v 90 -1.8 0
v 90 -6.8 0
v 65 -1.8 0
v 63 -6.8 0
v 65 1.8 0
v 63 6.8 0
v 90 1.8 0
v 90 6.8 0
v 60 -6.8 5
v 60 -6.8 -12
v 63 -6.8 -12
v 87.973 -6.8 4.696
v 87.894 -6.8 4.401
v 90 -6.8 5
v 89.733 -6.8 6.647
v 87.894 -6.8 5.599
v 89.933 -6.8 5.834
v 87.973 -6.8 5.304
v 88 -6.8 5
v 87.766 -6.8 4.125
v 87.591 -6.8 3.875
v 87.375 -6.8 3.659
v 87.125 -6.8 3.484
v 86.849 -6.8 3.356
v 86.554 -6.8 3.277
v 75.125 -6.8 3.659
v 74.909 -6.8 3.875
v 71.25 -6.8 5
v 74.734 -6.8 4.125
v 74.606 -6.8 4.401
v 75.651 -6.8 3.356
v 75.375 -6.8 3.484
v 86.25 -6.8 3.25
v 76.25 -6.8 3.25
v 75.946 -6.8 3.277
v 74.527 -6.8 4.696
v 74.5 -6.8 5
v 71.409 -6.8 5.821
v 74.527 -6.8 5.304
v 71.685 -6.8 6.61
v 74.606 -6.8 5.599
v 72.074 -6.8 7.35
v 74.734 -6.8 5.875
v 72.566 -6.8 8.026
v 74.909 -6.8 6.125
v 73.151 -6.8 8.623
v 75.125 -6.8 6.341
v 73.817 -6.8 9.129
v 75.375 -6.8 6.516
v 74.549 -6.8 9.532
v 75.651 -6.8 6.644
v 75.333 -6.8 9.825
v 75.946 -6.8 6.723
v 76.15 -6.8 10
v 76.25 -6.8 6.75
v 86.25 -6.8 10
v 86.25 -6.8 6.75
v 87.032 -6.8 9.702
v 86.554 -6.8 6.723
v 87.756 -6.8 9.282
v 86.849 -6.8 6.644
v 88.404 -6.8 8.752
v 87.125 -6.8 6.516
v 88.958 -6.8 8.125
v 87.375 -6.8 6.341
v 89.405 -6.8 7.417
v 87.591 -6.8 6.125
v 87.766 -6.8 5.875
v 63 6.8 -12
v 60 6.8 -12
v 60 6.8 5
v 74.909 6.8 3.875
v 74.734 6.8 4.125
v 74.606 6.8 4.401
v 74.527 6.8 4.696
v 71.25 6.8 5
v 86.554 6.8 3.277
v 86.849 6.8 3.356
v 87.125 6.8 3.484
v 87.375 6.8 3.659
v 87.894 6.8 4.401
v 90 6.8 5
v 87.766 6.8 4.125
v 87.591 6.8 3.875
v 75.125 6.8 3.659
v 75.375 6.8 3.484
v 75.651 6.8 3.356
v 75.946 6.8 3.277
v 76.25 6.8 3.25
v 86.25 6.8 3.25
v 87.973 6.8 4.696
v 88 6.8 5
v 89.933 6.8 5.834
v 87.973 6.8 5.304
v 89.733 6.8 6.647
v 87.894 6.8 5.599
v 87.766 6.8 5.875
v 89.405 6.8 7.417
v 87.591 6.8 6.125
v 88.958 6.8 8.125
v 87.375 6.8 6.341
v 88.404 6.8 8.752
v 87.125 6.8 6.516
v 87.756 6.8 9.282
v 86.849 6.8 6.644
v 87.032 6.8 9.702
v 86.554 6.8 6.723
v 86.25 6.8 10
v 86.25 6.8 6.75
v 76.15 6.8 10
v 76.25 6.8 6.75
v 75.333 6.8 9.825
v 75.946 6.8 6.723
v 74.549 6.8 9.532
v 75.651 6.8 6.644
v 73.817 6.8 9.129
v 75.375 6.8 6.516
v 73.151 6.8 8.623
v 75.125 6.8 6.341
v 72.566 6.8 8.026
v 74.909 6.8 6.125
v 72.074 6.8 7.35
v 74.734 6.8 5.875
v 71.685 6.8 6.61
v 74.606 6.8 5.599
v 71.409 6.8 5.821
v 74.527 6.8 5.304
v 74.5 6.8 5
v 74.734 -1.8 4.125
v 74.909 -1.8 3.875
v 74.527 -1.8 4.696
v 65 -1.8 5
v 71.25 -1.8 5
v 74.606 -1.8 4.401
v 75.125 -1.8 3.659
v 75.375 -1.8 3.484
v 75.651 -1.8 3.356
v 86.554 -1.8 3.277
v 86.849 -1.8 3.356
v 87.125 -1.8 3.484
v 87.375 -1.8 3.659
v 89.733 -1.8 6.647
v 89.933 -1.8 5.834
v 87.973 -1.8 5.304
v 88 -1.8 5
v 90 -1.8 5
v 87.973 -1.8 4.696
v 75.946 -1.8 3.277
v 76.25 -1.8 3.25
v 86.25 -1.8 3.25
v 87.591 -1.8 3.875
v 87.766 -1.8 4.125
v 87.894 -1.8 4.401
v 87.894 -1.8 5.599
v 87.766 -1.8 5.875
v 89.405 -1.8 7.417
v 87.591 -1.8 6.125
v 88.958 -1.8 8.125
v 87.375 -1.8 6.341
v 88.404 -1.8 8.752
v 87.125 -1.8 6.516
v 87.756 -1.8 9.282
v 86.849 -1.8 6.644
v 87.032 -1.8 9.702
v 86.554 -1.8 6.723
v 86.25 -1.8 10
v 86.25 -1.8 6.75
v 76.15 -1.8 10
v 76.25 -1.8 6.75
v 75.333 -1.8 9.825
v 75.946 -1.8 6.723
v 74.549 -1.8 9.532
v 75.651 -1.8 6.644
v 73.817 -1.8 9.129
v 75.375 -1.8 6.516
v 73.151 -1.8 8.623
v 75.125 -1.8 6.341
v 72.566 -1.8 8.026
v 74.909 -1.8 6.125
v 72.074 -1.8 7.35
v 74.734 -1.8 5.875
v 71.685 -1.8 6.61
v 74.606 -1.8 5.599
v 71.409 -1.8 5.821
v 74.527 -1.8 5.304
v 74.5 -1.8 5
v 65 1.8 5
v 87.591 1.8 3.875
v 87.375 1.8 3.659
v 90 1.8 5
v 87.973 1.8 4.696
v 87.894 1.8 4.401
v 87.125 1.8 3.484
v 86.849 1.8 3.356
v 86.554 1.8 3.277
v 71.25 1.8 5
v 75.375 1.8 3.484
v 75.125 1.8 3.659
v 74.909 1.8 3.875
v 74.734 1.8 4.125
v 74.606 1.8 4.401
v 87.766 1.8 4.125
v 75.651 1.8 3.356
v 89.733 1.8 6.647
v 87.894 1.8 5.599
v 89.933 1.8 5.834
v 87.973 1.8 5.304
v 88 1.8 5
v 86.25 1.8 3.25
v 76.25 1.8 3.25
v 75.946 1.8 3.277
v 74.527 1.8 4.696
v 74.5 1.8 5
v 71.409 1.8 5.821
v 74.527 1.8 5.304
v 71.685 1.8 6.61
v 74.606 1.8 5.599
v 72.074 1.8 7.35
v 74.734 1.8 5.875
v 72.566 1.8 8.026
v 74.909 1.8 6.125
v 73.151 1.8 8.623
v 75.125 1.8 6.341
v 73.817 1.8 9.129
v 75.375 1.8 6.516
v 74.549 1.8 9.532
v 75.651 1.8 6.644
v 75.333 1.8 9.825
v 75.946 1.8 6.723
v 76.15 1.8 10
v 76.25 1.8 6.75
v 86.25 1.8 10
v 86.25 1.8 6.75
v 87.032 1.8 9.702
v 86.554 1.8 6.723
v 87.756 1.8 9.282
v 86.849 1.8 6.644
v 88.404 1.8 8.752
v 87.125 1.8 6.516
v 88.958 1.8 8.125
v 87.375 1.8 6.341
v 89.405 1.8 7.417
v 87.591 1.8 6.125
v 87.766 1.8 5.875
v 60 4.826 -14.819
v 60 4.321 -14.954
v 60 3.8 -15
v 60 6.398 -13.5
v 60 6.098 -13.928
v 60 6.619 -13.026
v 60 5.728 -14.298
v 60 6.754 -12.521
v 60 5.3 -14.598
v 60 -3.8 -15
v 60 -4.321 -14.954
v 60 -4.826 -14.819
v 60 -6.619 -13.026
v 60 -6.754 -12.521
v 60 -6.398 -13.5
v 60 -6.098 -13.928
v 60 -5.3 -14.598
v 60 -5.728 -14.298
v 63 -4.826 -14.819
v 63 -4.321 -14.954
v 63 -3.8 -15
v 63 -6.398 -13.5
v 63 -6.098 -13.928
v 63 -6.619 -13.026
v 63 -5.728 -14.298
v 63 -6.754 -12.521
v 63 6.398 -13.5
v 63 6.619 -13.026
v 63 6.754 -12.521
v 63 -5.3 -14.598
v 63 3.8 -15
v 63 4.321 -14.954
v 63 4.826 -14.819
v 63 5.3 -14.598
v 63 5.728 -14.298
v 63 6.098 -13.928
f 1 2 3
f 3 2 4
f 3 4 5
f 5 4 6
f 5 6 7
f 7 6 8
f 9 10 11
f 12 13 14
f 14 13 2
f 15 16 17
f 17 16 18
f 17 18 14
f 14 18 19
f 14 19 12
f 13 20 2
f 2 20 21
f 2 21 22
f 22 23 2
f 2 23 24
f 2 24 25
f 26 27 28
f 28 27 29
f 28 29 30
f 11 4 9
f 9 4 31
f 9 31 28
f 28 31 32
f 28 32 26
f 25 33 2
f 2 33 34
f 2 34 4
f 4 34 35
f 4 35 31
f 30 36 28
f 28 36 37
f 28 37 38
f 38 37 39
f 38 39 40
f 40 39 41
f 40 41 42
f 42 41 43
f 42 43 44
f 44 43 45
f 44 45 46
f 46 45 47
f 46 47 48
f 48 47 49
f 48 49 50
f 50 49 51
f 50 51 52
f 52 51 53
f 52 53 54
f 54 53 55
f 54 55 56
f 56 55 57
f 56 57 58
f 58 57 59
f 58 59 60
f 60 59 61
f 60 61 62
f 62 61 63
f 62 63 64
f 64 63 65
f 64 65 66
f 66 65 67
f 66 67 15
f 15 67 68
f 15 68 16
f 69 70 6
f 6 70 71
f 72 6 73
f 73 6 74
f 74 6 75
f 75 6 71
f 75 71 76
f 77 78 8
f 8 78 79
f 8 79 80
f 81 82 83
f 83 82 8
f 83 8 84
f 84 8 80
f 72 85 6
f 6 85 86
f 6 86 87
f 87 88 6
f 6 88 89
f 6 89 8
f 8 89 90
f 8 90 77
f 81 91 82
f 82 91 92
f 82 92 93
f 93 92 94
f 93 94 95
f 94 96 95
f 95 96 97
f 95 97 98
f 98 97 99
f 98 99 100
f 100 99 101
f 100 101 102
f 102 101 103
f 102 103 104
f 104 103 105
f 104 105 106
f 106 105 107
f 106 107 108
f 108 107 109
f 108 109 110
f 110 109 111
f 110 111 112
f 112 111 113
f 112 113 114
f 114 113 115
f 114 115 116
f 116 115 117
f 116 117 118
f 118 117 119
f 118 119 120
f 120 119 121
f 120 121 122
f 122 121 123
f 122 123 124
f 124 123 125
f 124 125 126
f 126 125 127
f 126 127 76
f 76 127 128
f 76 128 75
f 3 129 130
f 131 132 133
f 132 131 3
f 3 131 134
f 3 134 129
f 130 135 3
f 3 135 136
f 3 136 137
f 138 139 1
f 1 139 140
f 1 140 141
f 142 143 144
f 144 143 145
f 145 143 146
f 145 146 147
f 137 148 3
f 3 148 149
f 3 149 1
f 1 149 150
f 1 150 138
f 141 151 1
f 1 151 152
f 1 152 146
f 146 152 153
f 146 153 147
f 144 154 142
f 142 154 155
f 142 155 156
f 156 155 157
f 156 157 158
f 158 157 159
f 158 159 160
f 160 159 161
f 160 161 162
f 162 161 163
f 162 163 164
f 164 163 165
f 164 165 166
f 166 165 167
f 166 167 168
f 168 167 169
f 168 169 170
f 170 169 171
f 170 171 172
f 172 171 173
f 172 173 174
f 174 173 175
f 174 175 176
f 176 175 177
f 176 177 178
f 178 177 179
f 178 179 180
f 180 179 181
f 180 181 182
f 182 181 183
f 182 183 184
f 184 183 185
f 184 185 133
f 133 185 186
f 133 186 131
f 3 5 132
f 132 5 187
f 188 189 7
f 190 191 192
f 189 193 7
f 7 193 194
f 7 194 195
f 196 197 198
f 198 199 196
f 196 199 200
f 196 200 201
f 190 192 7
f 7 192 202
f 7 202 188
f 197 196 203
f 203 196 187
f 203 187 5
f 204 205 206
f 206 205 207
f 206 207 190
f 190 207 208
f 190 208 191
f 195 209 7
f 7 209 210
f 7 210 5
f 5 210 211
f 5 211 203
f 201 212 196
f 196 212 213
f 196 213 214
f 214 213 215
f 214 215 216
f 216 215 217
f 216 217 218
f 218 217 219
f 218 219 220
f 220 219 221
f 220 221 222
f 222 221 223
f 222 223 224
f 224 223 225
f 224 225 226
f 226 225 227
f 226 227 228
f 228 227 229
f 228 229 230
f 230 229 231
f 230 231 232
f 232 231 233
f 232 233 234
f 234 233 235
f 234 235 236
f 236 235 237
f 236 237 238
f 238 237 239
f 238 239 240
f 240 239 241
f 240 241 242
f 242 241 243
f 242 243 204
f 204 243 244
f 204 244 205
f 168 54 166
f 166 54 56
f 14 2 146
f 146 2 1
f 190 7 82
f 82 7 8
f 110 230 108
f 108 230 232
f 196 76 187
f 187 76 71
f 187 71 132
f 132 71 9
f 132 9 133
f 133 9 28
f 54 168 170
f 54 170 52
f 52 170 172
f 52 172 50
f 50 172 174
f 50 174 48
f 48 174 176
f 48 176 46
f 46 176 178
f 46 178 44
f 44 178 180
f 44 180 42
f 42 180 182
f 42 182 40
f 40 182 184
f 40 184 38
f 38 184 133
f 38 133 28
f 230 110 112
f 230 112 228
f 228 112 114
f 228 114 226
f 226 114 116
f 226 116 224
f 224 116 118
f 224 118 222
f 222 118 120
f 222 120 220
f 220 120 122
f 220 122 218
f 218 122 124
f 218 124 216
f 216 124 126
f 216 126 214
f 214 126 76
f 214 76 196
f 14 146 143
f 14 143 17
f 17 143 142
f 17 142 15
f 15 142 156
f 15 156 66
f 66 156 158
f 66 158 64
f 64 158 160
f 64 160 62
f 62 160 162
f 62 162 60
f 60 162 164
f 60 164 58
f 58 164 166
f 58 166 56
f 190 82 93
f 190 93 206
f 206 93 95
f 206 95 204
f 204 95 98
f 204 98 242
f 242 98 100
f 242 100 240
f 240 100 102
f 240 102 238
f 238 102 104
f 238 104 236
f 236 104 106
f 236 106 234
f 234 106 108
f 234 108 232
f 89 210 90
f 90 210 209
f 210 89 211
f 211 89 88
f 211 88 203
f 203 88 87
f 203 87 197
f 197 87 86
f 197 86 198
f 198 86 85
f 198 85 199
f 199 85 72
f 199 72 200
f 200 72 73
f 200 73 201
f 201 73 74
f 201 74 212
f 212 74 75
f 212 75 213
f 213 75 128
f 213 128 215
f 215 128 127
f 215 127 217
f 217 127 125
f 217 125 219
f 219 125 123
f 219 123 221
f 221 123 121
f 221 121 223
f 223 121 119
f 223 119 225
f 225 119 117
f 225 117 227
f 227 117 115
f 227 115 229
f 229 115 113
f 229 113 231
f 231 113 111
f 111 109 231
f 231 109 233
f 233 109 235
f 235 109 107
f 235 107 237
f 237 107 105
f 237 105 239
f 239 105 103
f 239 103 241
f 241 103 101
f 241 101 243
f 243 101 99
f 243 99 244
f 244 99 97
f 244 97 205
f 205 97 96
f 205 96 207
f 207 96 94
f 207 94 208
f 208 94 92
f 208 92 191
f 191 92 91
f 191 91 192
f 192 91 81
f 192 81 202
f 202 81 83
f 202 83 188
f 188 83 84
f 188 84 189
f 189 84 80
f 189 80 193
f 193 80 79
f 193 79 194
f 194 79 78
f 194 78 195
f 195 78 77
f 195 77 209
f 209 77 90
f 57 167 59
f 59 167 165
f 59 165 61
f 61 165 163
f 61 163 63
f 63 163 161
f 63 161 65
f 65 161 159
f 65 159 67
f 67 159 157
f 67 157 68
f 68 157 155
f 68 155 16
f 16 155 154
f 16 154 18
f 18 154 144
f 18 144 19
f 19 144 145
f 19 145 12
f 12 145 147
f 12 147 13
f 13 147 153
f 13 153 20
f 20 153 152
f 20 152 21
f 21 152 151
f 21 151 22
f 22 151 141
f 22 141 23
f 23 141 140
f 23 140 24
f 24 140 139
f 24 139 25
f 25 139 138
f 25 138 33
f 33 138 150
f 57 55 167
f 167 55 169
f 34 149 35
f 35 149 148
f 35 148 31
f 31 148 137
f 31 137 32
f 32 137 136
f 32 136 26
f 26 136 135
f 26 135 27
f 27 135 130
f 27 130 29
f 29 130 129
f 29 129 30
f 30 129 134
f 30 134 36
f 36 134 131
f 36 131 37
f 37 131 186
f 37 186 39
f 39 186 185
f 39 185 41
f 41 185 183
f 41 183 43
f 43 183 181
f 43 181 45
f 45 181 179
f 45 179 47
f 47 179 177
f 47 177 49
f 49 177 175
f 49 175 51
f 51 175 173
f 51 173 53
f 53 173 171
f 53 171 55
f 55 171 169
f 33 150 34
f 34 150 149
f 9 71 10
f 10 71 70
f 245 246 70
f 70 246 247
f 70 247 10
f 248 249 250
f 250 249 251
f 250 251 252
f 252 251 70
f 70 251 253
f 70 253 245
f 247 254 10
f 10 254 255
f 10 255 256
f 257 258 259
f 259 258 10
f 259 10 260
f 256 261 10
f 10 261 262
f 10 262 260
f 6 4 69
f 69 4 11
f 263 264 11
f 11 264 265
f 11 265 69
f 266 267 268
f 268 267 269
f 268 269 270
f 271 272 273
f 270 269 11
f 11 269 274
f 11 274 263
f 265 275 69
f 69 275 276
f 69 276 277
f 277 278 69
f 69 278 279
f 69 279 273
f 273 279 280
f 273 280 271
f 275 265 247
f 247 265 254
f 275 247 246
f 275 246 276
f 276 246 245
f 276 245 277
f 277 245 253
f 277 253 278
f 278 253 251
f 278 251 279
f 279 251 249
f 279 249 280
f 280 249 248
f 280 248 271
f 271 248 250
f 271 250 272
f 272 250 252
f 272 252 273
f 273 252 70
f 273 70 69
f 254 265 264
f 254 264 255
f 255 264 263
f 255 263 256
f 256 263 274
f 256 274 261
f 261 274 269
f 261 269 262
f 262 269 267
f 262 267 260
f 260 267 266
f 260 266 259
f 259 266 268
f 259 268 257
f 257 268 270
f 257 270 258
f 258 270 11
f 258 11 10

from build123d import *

# Parameters (mm, degrees)
SALIENTE_EXTRUIR1_DEPTH = 10
CORTAR_EXTRUIR1_DEPTH   = 92.569427212
CROQUIS3_W              = 3
CROQUIS3_H              = 13.6
SALIENTE_EXTRUIR2_DEPTH = 15
CHAFL_N1_SIZE           = 10
CHAFL_N1_SIZE2          = 2.679491924
REDONDEO1_R             = 3
CROQUIS4_W              = 167.371615842
CROQUIS4_H              = 49.121487425
CORTAR_EXTRUIR2_DEPTH   = 93.249444443


with BuildPart() as part:
    # Croquis1 → Saliente-Extruir1 (new body)
    with BuildSketch(Plane.XY):
        Polygon((-90, -6.8), (-90, -1.8), (-65, -1.8), (-65, 1.8), (-90, 1.8), (-90, 6.8), (90, 6.8), (90, 1.8), (65, 1.8), (65, -1.8), (90, -1.8), (90, -6.8), align=None)
    extrude(amount=SALIENTE_EXTRUIR1_DEPTH)

    # Croquis2 → Cortar-Extruir1 (cut, through all)
    with BuildSketch(Plane(origin=(0, 6.8, 0), x_dir=(1, 0, 0), z_dir=(0, 1, 0))):
        with BuildLine():
            Line((-76.25, -3.25), (-86.25, -3.25))
            ThreePointArc((-86.25, -3.25), (-88, -5), (-86.25, -6.75))
            Line((-86.25, -6.75), (-76.25, -6.75))
            ThreePointArc((-76.25, -6.75), (-74.5, -5), (-76.25, -3.25))
        make_face()
        with BuildLine():
            ThreePointArc((-90, -5), (-88.958333333, -1.875), (-86.25, 0))
            Line((-86.25, 0), (-90, 0))
            Line((-90, 0), (-90, -5))
        make_face()
        with BuildLine():
            Line((86.25, -10), (90, -10))
            Line((90, -10), (90, -5))
            ThreePointArc((90, -5), (88.958333333, -8.125), (86.25, -10))
        make_face()
        with BuildLine():
            Line((76.25, -6.75), (86.25, -6.75))
            ThreePointArc((86.25, -6.75), (88, -5), (86.25, -3.25))
            Line((86.25, -3.25), (76.25, -3.25))
            ThreePointArc((76.25, -3.25), (74.5, -5), (76.25, -6.75))
        make_face()
        with BuildLine():
            Line((71.25, -5), (-71.25, -5))
            ThreePointArc((-71.25, -5), (-72.847588014, -8.335363746), (-76.15, -10))
            Line((-76.15, -10), (76.15, -10))
            ThreePointArc((76.15, -10), (72.847588014, -8.335363746), (71.25, -5))
        make_face()
    extrude(amount=-CORTAR_EXTRUIR1_DEPTH, mode=Mode.SUBTRACT)

    # Croquis3 → Saliente-Extruir2 (add)
    with BuildSketch(Plane(origin=(0, 0, 0), x_dir=(-1, 0, 0), z_dir=(0, 0, -1))):
        with Locations((-61.5, 0)):
            Rectangle(CROQUIS3_W, CROQUIS3_H)
        with Locations((61.5, 0)):
            Rectangle(CROQUIS3_W, CROQUIS3_H)
    extrude(amount=SALIENTE_EXTRUIR2_DEPTH)

    # Chaflán1
    chafl_n1_edges = [part.edges().sort_by_distance(p)[0] for p in [
        (0, -6.8, 0),
    ]]
    chafl_n1_side = [part.faces().sort_by_distance(p)[0] for p in [
        (0, 0, 0),
    ]]
    chamfer(chafl_n1_edges, length=CHAFL_N1_SIZE, length2=CHAFL_N1_SIZE2, reference=chafl_n1_side[0])

    # Redondeo1
    redondeo1_edges = [part.edges().sort_by_distance(p)[0] for p in [
        (61.5, 6.8, -15),
        (61.5, -6.8, -15),
        (-61.5, 6.8, -15),
        (-61.5, -6.8, -15),
    ]]
    fillet(redondeo1_edges, radius=REDONDEO1_R)

    # Croquis4 → Cortar-Extruir2 (cut, through all)
    with BuildSketch(Plane(origin=(0, -6.8, 0), x_dir=(-1, 0, 0), z_dir=(0, -1, 0))):
        with Locations((23.685807921, 0.224960459)):
            Rectangle(CROQUIS4_W, CROQUIS4_H)
    extrude(amount=-CORTAR_EXTRUIR2_DEPTH, mode=Mode.SUBTRACT)


solid = part.part
